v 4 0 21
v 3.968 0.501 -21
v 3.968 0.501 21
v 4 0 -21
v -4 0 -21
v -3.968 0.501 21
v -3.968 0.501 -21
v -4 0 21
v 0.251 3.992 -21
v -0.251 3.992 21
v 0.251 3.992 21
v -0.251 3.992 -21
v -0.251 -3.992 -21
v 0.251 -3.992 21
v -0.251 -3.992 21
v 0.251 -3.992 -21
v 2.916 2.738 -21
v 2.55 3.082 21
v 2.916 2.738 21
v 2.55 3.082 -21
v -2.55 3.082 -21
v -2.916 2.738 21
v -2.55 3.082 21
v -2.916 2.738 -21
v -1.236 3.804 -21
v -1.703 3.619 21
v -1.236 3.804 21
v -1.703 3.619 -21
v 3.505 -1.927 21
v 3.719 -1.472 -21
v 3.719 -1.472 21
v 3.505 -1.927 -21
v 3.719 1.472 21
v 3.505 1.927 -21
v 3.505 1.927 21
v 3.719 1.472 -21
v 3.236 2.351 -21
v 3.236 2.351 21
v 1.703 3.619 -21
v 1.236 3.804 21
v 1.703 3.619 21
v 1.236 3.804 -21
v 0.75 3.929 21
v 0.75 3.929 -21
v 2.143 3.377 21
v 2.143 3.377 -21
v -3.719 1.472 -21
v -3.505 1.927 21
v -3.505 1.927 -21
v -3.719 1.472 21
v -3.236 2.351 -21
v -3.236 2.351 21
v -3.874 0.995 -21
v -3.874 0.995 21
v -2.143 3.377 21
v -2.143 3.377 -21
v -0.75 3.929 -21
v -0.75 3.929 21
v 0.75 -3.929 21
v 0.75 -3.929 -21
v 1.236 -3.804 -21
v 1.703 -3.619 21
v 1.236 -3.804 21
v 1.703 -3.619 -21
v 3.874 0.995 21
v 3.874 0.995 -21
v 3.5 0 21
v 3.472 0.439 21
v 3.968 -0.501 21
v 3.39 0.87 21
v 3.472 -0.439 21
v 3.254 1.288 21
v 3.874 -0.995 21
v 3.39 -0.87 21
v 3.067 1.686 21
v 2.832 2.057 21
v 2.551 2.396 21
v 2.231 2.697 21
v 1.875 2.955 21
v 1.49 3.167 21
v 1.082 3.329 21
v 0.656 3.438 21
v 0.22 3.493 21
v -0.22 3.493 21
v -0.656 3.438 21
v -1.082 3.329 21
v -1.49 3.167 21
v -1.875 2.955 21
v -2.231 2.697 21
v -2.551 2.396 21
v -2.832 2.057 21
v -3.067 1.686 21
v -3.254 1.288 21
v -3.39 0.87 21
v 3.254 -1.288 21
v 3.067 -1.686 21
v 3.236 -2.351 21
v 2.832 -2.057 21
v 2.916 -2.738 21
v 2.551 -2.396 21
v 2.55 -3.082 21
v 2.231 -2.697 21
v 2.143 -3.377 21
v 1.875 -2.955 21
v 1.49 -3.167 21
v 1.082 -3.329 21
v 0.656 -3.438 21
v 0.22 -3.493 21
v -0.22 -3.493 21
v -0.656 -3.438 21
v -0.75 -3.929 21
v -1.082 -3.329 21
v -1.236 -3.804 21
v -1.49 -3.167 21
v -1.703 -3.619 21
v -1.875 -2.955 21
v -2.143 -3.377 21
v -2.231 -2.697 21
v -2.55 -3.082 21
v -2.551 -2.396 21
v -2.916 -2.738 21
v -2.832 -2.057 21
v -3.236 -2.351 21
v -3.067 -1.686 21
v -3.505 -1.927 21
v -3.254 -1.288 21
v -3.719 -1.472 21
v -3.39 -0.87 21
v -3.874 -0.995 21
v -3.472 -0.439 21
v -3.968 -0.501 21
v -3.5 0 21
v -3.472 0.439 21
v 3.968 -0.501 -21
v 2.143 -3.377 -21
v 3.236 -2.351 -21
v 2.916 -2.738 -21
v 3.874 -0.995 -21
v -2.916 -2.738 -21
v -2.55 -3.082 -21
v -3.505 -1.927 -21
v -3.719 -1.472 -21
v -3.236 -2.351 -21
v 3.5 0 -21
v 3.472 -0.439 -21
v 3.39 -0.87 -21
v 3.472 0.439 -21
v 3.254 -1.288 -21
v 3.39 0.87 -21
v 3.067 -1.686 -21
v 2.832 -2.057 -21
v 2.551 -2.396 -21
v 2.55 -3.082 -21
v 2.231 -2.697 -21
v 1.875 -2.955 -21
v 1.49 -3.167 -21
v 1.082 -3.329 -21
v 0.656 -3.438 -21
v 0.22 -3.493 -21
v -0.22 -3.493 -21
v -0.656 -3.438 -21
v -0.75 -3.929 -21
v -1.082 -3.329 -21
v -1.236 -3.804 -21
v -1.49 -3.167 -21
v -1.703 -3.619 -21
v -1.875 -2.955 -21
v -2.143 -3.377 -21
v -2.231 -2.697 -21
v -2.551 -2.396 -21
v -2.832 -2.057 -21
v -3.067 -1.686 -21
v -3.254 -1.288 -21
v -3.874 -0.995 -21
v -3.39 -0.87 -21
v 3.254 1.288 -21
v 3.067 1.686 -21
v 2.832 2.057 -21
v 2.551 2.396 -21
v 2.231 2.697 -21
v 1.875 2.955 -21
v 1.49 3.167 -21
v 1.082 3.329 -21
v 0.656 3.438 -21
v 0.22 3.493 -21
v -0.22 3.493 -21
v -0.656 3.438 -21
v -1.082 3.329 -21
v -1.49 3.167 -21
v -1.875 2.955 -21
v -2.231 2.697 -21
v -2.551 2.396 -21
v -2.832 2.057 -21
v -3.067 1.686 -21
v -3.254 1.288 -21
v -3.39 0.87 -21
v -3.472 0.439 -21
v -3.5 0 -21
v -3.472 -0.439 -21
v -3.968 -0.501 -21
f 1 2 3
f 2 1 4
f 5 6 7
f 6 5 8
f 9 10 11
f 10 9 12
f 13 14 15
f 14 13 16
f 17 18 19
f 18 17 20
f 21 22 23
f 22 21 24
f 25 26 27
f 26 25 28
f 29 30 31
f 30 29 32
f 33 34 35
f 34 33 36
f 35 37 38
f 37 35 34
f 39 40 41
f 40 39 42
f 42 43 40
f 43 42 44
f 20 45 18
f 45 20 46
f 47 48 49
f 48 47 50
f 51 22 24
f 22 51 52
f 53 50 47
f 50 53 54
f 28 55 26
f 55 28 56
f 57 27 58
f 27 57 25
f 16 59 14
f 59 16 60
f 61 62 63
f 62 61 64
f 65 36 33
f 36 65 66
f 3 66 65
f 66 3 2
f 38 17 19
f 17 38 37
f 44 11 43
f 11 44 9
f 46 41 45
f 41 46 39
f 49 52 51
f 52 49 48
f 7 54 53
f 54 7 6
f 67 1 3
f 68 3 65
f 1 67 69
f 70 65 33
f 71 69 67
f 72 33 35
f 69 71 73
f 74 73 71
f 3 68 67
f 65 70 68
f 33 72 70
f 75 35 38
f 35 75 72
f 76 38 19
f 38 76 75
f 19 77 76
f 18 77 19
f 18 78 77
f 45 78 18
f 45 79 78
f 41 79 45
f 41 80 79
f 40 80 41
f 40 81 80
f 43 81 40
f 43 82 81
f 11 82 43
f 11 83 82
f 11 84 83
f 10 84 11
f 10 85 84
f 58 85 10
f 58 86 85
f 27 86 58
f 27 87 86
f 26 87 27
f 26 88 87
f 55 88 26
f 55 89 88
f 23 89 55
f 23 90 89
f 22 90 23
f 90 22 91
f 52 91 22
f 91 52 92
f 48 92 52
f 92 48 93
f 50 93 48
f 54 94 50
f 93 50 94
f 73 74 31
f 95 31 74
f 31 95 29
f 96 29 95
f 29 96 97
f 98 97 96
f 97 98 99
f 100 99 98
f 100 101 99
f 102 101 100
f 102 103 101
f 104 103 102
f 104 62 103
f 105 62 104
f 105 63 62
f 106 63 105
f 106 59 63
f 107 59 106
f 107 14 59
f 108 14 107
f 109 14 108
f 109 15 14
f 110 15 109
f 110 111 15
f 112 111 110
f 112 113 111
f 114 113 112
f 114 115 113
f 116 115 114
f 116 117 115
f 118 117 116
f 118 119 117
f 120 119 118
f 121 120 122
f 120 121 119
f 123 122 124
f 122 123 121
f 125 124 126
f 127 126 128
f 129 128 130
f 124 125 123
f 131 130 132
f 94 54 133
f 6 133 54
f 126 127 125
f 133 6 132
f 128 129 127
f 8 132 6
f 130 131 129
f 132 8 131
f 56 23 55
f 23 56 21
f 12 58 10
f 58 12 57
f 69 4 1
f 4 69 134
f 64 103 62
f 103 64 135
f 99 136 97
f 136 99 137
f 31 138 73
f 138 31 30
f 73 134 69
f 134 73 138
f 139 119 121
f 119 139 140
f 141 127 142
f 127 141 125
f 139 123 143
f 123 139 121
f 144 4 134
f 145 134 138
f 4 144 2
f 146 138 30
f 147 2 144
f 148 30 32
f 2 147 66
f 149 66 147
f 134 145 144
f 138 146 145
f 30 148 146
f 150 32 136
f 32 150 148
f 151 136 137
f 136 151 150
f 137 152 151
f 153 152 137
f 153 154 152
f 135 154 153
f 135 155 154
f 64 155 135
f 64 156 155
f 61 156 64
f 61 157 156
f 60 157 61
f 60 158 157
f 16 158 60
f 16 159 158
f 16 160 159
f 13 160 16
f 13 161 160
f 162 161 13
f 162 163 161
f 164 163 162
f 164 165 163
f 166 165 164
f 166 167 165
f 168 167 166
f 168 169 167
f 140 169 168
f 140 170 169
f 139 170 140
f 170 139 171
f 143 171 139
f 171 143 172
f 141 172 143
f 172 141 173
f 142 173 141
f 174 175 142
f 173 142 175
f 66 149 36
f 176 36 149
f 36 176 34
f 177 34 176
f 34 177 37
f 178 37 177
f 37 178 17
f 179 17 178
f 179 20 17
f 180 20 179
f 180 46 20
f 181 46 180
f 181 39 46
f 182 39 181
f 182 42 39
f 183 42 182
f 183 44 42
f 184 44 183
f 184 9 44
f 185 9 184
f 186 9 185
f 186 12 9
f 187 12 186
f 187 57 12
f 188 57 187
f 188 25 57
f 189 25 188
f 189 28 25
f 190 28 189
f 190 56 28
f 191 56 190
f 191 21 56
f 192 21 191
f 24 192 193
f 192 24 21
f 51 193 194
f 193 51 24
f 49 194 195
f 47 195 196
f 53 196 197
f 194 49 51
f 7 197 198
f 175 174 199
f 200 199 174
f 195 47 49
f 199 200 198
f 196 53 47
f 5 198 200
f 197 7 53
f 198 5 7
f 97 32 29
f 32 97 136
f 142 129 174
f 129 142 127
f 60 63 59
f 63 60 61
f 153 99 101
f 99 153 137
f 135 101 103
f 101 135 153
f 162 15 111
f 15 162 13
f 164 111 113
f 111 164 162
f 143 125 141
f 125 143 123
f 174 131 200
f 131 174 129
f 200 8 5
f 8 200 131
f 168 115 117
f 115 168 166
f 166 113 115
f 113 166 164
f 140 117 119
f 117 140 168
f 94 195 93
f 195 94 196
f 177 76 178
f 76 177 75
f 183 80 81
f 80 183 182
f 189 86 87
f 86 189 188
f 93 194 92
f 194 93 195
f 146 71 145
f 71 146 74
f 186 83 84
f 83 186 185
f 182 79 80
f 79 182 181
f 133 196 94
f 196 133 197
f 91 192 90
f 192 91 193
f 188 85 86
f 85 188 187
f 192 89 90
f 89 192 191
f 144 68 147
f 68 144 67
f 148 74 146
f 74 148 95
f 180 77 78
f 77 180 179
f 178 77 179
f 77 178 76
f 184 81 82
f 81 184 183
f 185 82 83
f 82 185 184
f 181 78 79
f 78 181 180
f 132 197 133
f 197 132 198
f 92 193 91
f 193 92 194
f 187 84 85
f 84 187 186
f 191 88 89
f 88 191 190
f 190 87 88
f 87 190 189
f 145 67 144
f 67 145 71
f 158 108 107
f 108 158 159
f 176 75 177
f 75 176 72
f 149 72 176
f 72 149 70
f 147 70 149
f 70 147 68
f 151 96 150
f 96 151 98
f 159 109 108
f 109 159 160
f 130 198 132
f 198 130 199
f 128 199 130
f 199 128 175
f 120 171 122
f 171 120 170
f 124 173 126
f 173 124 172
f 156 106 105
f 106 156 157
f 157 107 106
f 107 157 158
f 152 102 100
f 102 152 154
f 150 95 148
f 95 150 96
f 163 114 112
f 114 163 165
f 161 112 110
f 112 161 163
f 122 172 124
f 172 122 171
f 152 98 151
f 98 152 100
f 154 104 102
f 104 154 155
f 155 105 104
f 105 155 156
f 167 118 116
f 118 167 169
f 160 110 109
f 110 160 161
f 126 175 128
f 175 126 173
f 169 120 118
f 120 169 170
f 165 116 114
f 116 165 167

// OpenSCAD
$fn = 50;


difference() {
	union() {
		translate(v = [0, 0, -21.0000000000]) {
			cylinder(h = 42, r = 4.0000000000);
		}
	}
	union() {
		translate(v = [0, 0, -100.0000000000]) {
			cylinder(h = 200, r = 3.5000000000);
		}
	}
}
